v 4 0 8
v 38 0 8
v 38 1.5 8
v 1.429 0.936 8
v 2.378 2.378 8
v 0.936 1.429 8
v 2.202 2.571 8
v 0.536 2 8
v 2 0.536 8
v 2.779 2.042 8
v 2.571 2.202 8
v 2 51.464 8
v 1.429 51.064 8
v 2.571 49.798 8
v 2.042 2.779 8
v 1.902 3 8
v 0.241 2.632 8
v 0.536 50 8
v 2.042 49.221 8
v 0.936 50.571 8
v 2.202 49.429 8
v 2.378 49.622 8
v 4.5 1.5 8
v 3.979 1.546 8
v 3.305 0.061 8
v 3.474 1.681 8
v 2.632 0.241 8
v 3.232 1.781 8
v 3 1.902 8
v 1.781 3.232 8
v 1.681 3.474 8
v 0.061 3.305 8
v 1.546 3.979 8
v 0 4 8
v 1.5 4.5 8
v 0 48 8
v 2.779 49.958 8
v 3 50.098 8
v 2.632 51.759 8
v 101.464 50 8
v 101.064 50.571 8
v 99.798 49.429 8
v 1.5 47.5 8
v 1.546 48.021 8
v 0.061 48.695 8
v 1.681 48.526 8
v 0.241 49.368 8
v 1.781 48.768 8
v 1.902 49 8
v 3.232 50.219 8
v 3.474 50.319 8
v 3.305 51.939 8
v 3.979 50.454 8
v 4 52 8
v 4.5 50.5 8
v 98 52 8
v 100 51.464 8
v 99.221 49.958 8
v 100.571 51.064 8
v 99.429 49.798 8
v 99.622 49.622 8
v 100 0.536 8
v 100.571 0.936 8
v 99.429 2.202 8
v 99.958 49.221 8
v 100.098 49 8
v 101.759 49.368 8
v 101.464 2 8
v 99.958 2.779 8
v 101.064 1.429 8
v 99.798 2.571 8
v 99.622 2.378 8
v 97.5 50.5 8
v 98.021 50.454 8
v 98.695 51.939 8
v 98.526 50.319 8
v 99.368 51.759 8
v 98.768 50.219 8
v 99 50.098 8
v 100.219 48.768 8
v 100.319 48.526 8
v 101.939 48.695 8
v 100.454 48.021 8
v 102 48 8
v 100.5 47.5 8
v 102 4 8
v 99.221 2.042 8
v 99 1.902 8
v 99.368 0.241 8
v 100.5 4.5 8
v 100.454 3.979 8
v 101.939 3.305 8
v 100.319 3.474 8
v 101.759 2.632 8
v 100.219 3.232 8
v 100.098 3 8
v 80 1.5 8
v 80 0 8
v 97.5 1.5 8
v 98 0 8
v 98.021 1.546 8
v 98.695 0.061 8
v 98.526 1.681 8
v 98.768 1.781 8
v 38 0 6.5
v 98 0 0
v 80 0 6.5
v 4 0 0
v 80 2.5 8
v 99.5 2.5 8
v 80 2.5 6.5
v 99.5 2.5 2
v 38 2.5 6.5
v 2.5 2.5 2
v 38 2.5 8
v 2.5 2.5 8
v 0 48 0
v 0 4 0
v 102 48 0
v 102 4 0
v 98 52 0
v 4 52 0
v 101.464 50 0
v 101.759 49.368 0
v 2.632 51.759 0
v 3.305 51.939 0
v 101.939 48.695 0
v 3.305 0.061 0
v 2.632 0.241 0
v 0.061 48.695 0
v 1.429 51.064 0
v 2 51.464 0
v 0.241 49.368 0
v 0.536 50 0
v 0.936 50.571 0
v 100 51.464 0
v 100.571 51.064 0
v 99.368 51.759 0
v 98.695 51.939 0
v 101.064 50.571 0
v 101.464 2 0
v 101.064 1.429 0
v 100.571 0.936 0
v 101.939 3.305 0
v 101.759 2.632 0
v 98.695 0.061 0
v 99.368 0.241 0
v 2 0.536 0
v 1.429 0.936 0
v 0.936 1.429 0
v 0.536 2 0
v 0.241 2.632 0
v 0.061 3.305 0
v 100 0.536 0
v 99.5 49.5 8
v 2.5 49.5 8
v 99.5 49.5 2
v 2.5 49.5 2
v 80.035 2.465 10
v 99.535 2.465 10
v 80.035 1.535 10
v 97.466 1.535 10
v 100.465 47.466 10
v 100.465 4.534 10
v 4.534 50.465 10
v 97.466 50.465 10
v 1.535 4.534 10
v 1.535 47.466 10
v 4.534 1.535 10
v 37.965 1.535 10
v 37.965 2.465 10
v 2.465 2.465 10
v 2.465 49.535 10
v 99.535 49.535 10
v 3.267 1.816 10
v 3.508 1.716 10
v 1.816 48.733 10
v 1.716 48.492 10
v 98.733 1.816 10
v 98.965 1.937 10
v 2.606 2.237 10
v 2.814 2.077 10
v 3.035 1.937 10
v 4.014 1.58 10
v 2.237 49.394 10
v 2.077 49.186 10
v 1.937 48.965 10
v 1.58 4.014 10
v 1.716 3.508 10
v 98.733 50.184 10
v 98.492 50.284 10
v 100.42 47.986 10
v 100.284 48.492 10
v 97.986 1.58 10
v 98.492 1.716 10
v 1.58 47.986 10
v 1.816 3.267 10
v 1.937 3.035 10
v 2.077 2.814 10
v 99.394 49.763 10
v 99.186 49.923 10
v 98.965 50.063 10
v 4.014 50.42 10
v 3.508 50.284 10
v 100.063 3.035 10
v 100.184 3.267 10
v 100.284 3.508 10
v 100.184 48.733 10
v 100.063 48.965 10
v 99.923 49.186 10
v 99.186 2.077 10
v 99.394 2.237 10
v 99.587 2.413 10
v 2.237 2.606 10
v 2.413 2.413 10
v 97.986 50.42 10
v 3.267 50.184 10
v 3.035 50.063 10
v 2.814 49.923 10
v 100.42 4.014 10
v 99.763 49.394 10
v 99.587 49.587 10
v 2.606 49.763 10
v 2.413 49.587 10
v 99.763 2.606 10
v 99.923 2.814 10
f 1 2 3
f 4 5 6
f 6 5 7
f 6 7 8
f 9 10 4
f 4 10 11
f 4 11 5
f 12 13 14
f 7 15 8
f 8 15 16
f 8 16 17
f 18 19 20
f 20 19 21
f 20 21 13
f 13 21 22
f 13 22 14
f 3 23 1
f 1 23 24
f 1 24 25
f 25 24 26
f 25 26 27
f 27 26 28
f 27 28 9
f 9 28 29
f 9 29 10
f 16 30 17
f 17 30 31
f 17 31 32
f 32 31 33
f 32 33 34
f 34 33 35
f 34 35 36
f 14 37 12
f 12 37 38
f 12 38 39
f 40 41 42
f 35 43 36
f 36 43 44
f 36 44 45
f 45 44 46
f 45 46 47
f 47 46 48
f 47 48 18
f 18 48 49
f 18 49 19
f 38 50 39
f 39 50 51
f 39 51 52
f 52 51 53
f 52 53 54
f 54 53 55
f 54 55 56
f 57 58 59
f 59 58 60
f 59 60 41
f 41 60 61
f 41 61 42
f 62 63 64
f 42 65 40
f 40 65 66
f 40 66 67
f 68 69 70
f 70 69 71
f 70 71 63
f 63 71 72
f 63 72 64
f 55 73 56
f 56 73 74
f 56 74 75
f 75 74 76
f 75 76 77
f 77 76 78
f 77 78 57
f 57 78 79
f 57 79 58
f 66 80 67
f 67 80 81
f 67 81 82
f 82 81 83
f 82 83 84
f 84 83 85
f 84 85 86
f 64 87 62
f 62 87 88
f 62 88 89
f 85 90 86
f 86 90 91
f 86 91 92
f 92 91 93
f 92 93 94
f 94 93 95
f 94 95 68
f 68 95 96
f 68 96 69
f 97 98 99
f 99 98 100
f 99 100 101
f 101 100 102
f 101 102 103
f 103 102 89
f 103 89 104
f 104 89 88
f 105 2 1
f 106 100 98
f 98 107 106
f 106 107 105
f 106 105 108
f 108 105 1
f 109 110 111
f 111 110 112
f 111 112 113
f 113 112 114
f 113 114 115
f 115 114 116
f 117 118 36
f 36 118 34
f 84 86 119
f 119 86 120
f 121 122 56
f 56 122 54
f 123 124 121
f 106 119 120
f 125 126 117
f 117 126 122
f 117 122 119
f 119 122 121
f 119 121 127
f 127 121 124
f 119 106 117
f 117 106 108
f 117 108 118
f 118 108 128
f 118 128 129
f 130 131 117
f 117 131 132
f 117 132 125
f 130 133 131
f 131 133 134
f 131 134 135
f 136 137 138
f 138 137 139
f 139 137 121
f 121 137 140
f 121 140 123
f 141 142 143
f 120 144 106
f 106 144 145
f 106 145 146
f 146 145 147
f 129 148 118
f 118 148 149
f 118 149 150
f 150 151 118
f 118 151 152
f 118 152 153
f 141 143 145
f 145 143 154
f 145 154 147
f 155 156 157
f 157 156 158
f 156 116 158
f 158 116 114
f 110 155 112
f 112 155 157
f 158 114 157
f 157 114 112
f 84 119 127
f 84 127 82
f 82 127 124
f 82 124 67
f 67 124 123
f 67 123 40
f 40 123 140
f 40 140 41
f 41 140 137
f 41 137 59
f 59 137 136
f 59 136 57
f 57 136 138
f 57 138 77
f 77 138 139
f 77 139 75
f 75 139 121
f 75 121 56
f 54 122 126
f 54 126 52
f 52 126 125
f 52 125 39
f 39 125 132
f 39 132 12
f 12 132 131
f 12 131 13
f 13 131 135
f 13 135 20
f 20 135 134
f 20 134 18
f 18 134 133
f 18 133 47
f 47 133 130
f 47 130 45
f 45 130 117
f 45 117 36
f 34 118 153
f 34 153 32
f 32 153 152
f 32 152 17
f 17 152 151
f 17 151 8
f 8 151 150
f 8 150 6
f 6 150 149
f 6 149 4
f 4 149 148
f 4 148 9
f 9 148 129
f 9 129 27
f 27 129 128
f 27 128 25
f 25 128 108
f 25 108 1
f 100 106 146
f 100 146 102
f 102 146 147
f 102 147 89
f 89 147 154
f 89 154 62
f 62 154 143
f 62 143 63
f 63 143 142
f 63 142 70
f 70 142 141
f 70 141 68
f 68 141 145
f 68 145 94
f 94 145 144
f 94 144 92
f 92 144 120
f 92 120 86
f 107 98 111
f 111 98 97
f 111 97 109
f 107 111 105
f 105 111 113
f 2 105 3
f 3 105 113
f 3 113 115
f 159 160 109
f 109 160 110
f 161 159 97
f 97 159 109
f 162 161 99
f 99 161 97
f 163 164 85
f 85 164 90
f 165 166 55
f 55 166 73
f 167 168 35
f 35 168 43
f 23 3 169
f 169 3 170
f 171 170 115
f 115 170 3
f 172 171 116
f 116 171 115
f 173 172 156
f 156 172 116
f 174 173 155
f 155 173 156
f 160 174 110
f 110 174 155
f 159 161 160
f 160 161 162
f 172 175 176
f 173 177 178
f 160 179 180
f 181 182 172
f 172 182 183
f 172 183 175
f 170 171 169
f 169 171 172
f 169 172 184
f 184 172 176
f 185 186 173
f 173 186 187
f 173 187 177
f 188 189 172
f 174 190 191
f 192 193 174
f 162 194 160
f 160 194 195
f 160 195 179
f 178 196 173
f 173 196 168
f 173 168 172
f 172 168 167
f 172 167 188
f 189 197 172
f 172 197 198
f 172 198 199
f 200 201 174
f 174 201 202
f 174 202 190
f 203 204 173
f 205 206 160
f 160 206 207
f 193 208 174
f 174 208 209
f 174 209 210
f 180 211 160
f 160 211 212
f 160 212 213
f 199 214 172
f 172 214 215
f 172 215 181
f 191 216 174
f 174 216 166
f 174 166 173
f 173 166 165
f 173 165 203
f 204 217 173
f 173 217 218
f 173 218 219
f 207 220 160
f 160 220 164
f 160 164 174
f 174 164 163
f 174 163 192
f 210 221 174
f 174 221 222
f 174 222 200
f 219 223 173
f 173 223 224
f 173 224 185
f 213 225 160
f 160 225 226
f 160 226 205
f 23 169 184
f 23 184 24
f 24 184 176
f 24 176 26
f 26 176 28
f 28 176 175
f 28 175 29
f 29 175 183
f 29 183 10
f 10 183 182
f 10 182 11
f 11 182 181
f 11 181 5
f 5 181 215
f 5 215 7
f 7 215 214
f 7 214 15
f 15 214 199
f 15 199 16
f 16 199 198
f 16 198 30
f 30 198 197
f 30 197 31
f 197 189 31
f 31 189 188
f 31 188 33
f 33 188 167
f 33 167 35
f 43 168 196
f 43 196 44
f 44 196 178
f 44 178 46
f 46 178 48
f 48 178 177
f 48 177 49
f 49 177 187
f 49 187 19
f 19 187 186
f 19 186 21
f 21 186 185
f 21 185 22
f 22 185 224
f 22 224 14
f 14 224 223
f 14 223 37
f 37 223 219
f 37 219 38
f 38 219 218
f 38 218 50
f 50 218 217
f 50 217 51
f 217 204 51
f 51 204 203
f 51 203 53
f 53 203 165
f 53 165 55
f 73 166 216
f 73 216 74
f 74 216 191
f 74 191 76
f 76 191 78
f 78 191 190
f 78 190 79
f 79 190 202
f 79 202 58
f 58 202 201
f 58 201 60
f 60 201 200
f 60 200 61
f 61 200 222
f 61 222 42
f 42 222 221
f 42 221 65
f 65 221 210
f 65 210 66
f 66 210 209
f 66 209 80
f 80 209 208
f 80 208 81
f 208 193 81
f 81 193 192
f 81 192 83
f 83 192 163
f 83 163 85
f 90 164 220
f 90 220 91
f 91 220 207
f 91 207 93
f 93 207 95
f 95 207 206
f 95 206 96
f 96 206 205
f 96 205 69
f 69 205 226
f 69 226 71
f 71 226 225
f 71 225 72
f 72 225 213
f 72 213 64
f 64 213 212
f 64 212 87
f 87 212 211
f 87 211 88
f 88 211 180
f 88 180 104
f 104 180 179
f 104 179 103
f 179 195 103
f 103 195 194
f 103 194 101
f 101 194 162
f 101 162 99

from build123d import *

# Parameters (mm, degrees)
ESQUISSE1_W             = 102
ESQUISSE1_H             = 52
BOSS_EXTRU_1_DEPTH      = 2
ESQUISSE2_W             = 102
ESQUISSE2_H             = 52
ESQUISSE2_W_2           = 97
ESQUISSE2_H_2           = 47
EXTRU_MINCE1_DEPTH      = 6
CONG_2_R                = 4
ESQUISSE4_W             = 42
ESQUISSE4_H             = 22.824396381
ENL_V_MAT_EXTRU_1_DEPTH = 14
EXTRU_MINCE2_DEPTH      = 2
EXTRU_MINCE2_DRAFT      = 1
CONG_3_R                = 3


with BuildPart() as part:
    # Esquisse1 → Boss.-Extru.1 (new body)
    with BuildSketch(Plane.XY):
        with Locations((51, 26)):
            Rectangle(ESQUISSE1_W, ESQUISSE1_H)
    extrude(amount=BOSS_EXTRU_1_DEPTH)

    # Esquisse2 → Extru.-Mince1 (add)
    with BuildSketch(Plane.XY.offset(2)):
        with Locations((51, 26)):
            Rectangle(ESQUISSE2_W, ESQUISSE2_H)
        with Locations((51, 26)):
            Rectangle(ESQUISSE2_W_2, ESQUISSE2_H_2, mode=Mode.SUBTRACT)
    extrude(amount=EXTRU_MINCE1_DEPTH)

    # Congé2
    cong_2_edges = [part.edges().sort_by_distance(p)[0] for p in [
        (0, 52, 4),
        (102, 52, 4),
        (102, 0, 4),
        (0, 0, 4),
    ]]
    fillet(cong_2_edges, radius=CONG_2_R)

    # Esquisse4 → Enlèv. mat.-Extru.1 (cut)
    with BuildSketch(Plane(origin=(0, 0, 0), x_dir=(1, 0, 0), z_dir=(0, 1, 0))):
        with Locations((59, -17.91219819)):
            Rectangle(ESQUISSE4_W, ESQUISSE4_H)
    extrude(amount=ENL_V_MAT_EXTRU_1_DEPTH, mode=Mode.SUBTRACT)


with BuildPart() as extru_mince2_tool:
    # Esquisse5 → Extru.-Mince2 (with draft: the straight prism first)
    with BuildSketch(Plane.XY.offset(8)):
        Polygon((38, 2.5), (2.5, 2.5), (2.5, 49.5), (99.5, 49.5), (99.5, 2.5), (80, 2.5), (80, 1.5), (100.5, 1.5), (100.5, 50.5), (1.5, 50.5), (1.5, 1.5), (38, 1.5), align=None)
    extrude(amount=EXTRU_MINCE2_DEPTH)
    # Extru.-Mince2: the draft: its side faces are tilted about the plane it starts from
    extru_mince2_sides = [extru_mince2_tool.faces().sort_by_distance(p)[0] for p in [
        (20.25, 2.5, 9),
        (2.5, 26, 9),
        (51, 49.5, 9),
        (99.5, 26, 9),
        (89.75, 2.5, 9),
        (80, 2, 9),
        (90.25, 1.5, 9),
        (100.5, 26, 9),
        (51, 50.5, 9),
        (1.5, 26, 9),
        (19.75, 1.5, 9),
        (38, 2, 9),
    ]]
    draft(extru_mince2_sides, Plane.XY.offset(8), EXTRU_MINCE2_DRAFT)


with BuildPart() as part_1:
    add(part.part)

    # Extru.-Mince2: add extru_mince2_tool
    add(extru_mince2_tool.part)

    # Congé3
    cong_3_edges = [part_1.edges().sort_by_distance(p)[0] for p in [
        (100.482544935, 1.517455065, 9),
        (100.482544935, 50.482544935, 9),
        (1.517455065, 50.482544935, 9),
        (1.517455065, 1.517455065, 9),
    ]]
    fillet(cong_3_edges, radius=CONG_3_R)


solid = part_1.part
